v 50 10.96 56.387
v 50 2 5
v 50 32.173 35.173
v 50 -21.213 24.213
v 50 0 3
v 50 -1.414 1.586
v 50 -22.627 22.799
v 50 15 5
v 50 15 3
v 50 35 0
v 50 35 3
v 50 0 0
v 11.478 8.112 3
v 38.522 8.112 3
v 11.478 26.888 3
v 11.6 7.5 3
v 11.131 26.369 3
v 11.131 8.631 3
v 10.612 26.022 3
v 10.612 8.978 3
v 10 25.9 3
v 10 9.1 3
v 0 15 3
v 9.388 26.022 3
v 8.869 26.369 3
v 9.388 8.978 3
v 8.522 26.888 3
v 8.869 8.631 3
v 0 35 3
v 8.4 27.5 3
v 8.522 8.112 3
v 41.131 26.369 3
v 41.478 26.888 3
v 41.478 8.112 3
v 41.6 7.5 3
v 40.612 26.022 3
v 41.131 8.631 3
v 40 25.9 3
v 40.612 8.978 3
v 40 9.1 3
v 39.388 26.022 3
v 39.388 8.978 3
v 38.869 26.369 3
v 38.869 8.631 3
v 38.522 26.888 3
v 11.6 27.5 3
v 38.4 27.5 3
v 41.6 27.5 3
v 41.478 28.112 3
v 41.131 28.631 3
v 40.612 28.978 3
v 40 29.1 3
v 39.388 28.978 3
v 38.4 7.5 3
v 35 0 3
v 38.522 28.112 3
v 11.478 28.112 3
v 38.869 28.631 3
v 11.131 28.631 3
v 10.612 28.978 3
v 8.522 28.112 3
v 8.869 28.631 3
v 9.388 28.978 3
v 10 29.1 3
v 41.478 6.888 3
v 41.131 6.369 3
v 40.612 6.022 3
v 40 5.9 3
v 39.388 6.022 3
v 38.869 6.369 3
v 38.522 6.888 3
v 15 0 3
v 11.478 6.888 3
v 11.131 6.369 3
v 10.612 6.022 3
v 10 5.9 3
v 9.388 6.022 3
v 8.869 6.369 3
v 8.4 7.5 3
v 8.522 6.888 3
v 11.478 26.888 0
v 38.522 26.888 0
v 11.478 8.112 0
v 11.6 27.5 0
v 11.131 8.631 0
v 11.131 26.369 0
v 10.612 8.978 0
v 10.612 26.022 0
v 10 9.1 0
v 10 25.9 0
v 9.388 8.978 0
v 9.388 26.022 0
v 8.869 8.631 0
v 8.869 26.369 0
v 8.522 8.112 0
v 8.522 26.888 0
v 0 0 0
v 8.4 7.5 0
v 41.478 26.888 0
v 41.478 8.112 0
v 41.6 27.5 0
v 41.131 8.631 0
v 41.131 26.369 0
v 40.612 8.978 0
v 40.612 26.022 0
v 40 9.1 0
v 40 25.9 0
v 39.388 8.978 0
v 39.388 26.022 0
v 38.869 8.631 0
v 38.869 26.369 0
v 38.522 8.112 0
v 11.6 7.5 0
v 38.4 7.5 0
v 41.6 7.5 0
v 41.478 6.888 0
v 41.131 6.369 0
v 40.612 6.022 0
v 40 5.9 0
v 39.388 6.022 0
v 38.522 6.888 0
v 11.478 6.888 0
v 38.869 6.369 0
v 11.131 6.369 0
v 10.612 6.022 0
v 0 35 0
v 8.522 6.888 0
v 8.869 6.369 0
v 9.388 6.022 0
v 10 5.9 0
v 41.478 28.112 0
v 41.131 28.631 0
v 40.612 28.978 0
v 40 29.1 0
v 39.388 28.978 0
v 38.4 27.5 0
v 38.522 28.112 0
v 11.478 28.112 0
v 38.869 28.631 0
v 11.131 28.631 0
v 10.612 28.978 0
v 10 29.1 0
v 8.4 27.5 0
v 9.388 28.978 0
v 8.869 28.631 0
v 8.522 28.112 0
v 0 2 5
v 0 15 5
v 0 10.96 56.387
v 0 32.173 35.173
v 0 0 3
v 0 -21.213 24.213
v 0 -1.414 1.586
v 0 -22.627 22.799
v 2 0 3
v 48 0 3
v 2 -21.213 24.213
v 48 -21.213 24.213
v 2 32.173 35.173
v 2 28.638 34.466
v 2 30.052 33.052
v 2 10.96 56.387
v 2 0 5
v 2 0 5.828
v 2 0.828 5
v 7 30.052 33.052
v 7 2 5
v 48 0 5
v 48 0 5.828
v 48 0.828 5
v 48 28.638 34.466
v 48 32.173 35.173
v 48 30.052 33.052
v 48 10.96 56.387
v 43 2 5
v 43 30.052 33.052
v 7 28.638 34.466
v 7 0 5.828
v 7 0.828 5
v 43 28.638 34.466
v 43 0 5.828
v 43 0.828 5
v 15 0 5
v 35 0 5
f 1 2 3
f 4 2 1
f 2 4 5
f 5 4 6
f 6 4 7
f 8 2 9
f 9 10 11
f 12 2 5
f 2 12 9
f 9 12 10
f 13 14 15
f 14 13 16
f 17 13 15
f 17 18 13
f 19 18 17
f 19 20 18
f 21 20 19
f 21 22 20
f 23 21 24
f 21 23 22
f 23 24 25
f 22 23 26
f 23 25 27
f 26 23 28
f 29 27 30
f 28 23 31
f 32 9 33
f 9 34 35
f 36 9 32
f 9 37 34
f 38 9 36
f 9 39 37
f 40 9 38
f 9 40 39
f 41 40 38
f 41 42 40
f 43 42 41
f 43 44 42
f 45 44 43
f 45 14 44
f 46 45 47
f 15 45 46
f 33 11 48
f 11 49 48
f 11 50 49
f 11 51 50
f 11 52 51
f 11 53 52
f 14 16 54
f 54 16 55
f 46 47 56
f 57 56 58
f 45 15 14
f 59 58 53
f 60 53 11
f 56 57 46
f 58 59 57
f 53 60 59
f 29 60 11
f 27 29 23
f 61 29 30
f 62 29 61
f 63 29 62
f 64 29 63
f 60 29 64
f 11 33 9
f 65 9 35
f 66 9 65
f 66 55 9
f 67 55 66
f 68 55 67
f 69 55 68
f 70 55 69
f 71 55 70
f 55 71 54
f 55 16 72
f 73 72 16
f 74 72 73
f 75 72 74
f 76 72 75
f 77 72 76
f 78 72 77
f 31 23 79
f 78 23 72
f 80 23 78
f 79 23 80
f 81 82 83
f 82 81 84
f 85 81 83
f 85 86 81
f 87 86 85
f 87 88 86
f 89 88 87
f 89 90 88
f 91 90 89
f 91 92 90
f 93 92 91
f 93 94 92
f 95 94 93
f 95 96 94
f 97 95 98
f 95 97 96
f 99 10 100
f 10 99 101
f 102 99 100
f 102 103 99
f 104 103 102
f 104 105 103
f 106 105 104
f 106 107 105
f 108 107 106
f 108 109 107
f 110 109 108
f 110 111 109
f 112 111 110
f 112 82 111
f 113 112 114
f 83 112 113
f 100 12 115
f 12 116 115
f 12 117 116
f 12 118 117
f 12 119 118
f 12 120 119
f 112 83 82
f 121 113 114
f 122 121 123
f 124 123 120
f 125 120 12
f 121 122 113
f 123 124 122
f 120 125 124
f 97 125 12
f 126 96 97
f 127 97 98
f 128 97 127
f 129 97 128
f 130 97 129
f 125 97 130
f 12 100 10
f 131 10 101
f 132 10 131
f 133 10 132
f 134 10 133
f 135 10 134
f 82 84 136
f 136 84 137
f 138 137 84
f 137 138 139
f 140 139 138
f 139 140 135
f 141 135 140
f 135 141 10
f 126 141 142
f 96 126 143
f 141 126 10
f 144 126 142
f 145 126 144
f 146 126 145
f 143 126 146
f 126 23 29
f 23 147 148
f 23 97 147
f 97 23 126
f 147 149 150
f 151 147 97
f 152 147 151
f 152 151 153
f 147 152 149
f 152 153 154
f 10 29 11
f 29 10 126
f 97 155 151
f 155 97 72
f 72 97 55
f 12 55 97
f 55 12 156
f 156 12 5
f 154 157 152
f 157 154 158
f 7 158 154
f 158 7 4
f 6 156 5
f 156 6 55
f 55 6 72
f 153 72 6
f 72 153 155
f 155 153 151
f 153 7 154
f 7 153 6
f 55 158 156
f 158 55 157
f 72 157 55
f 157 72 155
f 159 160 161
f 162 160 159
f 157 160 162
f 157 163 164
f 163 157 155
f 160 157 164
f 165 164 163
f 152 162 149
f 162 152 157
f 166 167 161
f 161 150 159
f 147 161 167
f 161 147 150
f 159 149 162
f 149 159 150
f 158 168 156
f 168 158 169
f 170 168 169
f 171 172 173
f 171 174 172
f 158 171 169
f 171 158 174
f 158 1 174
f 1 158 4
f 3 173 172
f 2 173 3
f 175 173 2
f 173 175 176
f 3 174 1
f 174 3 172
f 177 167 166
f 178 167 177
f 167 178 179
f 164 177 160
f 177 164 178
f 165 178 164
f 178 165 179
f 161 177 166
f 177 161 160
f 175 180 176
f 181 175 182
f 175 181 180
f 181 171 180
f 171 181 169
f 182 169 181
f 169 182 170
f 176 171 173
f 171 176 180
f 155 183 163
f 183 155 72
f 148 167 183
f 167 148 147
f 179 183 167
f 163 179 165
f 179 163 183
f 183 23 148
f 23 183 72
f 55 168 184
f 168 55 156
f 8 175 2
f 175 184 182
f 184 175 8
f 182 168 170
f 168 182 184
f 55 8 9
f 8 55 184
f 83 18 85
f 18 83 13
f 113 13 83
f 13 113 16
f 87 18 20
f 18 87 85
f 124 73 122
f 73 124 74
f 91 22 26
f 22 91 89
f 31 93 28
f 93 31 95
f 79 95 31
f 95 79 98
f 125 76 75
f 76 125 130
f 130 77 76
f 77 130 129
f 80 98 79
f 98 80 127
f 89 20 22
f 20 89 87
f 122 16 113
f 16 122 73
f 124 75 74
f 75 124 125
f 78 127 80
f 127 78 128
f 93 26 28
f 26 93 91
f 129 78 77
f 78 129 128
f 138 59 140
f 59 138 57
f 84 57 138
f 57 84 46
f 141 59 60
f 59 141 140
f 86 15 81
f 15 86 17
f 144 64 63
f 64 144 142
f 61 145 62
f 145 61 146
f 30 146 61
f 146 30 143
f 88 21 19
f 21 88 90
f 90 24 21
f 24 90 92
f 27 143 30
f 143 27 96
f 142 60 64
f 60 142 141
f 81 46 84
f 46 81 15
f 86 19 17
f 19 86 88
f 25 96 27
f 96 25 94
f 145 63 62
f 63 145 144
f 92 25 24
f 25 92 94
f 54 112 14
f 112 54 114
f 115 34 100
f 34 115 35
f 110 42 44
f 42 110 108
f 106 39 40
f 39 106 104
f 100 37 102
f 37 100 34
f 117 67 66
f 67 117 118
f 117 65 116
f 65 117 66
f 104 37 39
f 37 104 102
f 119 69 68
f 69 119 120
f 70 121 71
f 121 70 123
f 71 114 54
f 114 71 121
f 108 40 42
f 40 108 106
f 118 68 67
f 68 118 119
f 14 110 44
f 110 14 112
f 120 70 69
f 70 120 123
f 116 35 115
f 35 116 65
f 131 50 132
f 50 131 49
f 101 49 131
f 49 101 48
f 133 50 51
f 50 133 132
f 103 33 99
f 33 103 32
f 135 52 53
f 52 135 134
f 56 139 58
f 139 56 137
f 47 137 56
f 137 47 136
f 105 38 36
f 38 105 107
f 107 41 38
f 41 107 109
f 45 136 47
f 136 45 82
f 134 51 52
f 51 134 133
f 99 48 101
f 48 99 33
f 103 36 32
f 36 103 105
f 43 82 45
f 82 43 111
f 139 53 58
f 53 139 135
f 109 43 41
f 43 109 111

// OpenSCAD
// ============================================
// ESP32 Rover - Camera Bracket (45°)
// ============================================
// Design Specification v1.0
//
// 45-degree angled bracket for ESP32-CAM.
// Provides optimal FPV viewing angle.
// ============================================

// ESP32-CAM dimensions
pcb_width = 27;
pcb_length = 40.5;
pcb_thickness = 1.6;

// Bracket dimensions
bracket_base_length = 50;
bracket_base_width = 35;
bracket_base_thickness = 3;

bracket_angle = 45;  // Degrees from horizontal
bracket_back_height = 30;
bracket_wall_thickness = 2;

// Camera lens position (from bottom of PCB)
lens_offset_y = 8;
lens_diameter = 10;

// Mounting
mount_hole_dia = 3.2;  // M3 clearance

// Resolution
$fn = 32;

module camera_bracket() {
    difference() {
        union() {
            // Base plate
            cube([bracket_base_length, bracket_base_width, bracket_base_thickness]);

            // Angled back support
            translate([0, 0, bracket_base_thickness])
                rotate([bracket_angle, 0, 0])
                    translate([0, -bracket_wall_thickness, 0])
                        cube([bracket_base_length, bracket_wall_thickness, bracket_back_height]);

            // Side walls
            translate([0, 0, bracket_base_thickness])
                rotate([bracket_angle, 0, 0])
                    translate([0, 0, 0])
                        cube([bracket_wall_thickness, pcb_length + 5, bracket_back_height]);

            translate([bracket_base_length - bracket_wall_thickness, 0, bracket_base_thickness])
                rotate([bracket_angle, 0, 0])
                    translate([0, 0, 0])
                        cube([bracket_wall_thickness, pcb_length + 5, bracket_back_height]);

            // PCB support ledges
            translate([bracket_wall_thickness, 0, bracket_base_thickness])
                rotate([bracket_angle, 0, 0])
                    translate([0, 2, 0])
                        cube([5, pcb_length, 2]);

            translate([bracket_base_length - bracket_wall_thickness - 5, 0, bracket_base_thickness])
                rotate([bracket_angle, 0, 0])
                    translate([0, 2, 0])
                        cube([5, pcb_length, 2]);

            // Gussets for strength
            translate([0, 0, bracket_base_thickness])
                linear_extrude(height = bracket_wall_thickness)
                    polygon([[0, 0], [15, 0], [0, 15]]);

            translate([bracket_base_length, 0, bracket_base_thickness])
                linear_extrude(height = bracket_wall_thickness)
                    polygon([[0, 0], [-15, 0], [0, 15]]);
        }

        // Camera lens cutout
        translate([bracket_base_length / 2, 0, bracket_base_thickness])
            rotate([bracket_angle, 0, 0])
                translate([0, lens_offset_y + 5, -1])
                    cylinder(d = lens_diameter + 2, h = bracket_wall_thickness + 2);

        // PCB slot
        translate([(bracket_base_length - pcb_width) / 2, 0, bracket_base_thickness])
            rotate([bracket_angle, 0, 0])
                translate([0, 2, 2])
                    cube([pcb_width + 0.5, pcb_length + 2, pcb_thickness + 0.5]);

        // Base mounting holes
        translate([10, bracket_base_width / 2 - 10, -1])
            cylinder(d = mount_hole_dia, h = bracket_base_thickness + 2, $fn = 16);
        translate([10, bracket_base_width / 2 + 10, -1])
            cylinder(d = mount_hole_dia, h = bracket_base_thickness + 2, $fn = 16);
        translate([bracket_base_length - 10, bracket_base_width / 2 - 10, -1])
            cylinder(d = mount_hole_dia, h = bracket_base_thickness + 2, $fn = 16);
        translate([bracket_base_length - 10, bracket_base_width / 2 + 10, -1])
            cylinder(d = mount_hole_dia, h = bracket_base_thickness + 2, $fn = 16);

        // Ventilation slots on back
        for (i = [0:4]) {
            translate([10 + i * 7, -5, bracket_base_thickness])
                rotate([bracket_angle, 0, 0])
                    translate([0, -bracket_wall_thickness - 1, 5])
                        cube([3, bracket_wall_thickness + 2, bracket_back_height - 10]);
        }

        // Cable exit slot
        translate([bracket_base_length / 2 - 5, 0, bracket_base_thickness])
            rotate([bracket_angle, 0, 0])
                translate([0, pcb_length, 0])
                    cube([10, 10, 5]);
    }
}

// Render the part
camera_bracket();
